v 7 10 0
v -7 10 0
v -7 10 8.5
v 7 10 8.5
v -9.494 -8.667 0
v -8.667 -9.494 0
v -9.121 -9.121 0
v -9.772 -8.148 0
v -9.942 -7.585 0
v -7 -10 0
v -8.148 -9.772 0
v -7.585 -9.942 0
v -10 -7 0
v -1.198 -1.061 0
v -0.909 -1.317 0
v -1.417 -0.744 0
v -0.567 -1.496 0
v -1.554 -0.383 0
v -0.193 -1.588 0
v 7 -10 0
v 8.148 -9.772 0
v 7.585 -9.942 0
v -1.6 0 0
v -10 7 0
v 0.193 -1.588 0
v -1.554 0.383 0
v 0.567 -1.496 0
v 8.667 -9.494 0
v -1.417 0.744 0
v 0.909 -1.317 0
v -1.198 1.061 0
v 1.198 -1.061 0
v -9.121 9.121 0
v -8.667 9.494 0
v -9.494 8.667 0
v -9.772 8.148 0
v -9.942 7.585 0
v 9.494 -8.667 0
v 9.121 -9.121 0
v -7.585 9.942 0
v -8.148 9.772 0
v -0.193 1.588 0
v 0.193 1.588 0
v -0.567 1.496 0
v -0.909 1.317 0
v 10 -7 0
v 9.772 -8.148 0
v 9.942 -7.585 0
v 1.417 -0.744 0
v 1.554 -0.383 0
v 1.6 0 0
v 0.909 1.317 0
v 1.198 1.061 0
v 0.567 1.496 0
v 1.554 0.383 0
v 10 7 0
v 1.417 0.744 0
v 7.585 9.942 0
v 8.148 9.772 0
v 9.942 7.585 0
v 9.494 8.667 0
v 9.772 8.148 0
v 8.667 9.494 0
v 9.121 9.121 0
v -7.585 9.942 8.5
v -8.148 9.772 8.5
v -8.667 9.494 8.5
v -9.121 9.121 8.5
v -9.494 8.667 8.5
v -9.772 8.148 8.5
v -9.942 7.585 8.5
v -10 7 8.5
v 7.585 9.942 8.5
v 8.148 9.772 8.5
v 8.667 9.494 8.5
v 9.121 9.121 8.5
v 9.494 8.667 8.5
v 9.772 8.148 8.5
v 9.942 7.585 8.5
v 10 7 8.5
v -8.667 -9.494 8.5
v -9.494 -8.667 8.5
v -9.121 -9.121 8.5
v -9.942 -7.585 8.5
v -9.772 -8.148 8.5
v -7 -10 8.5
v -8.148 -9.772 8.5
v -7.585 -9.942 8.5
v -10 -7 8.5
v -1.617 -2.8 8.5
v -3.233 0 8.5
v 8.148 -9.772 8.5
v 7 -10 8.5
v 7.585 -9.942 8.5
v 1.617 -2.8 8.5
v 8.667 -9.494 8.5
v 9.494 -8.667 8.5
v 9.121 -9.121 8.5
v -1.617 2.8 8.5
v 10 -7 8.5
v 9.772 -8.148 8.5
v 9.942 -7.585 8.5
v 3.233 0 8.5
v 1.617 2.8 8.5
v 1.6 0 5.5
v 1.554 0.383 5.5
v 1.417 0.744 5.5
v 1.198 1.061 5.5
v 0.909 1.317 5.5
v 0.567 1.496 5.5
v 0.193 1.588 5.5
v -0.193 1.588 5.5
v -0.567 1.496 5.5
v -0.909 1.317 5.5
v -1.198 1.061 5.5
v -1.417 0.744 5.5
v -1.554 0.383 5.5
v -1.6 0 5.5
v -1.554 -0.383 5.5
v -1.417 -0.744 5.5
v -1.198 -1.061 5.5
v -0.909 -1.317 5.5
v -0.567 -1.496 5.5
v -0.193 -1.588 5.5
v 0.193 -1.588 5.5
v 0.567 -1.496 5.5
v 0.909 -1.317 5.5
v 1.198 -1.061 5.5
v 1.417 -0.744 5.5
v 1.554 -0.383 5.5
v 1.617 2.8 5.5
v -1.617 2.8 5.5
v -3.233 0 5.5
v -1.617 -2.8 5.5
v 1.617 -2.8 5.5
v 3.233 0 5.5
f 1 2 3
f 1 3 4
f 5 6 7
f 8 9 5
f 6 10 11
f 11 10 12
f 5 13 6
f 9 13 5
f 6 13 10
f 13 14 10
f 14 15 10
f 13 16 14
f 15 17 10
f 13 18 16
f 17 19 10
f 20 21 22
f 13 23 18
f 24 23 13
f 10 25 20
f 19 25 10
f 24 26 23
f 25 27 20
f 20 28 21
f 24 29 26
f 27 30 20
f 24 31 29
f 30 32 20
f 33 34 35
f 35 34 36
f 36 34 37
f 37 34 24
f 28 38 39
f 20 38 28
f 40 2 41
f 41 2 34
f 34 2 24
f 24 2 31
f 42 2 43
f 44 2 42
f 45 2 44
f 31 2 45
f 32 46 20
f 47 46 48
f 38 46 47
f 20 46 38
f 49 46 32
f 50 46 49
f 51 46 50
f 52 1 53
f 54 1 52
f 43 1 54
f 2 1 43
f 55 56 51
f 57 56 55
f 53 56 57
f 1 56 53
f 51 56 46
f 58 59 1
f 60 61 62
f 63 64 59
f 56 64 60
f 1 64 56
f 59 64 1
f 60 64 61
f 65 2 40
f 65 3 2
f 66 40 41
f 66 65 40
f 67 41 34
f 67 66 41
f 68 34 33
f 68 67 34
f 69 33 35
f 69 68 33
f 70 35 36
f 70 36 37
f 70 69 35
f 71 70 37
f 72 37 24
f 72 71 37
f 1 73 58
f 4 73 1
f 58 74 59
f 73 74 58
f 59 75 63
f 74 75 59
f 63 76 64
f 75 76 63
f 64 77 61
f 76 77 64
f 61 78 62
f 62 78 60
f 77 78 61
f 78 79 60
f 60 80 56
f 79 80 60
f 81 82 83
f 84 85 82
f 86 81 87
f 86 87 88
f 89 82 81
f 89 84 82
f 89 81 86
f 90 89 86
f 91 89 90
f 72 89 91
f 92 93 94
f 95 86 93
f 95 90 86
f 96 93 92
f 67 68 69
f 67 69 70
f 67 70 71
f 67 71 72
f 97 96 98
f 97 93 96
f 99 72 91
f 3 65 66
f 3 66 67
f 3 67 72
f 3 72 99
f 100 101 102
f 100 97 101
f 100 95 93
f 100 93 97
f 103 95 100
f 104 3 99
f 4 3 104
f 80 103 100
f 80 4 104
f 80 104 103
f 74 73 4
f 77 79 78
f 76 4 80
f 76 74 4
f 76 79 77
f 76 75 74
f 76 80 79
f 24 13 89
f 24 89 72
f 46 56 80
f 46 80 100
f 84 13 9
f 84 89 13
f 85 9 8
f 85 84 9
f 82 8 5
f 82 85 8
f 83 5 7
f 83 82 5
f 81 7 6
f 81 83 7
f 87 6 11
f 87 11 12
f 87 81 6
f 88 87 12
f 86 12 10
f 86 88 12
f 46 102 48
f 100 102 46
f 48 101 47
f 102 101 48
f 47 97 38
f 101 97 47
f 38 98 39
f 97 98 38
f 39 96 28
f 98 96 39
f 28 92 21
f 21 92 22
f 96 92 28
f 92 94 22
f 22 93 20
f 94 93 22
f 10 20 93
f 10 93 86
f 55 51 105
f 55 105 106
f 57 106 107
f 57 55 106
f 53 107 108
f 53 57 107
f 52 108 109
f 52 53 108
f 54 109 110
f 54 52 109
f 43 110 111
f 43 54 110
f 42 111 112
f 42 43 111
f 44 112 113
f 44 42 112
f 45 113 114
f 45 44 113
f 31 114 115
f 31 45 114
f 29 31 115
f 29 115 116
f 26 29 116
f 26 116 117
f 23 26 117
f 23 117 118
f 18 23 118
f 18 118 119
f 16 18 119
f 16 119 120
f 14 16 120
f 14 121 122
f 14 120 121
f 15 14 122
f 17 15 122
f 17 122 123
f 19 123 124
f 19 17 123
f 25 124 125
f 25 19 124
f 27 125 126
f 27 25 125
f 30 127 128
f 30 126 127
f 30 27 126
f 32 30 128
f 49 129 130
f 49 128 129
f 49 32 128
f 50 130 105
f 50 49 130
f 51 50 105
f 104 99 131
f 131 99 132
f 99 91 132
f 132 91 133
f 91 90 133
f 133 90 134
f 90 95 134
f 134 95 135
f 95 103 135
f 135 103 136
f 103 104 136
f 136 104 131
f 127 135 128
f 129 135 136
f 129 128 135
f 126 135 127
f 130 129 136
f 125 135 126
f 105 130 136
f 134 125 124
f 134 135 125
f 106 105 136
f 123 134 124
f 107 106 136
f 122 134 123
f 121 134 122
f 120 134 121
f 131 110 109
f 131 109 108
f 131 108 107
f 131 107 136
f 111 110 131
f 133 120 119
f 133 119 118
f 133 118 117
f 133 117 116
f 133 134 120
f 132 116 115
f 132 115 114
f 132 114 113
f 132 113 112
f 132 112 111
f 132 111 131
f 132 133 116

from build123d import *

# Parameters (mm, degrees)
SKETCH_W     = 20
SKETCH_H     = 20
SKETCH_R     = 1.6
PAD_DEPTH    = 8.5
POCKET_DEPTH = 3
FILLET_R     = 3


with BuildPart() as part:
    # Sketch → Pad (new body)
    with BuildSketch(Plane.XY):
        Rectangle(SKETCH_W, SKETCH_H)
        Circle(SKETCH_R, mode=Mode.SUBTRACT)
    extrude(amount=PAD_DEPTH)

    # Sketch001 (on Face7 of Pad) → Pocket (cut)
    with BuildSketch(Plane.XY.offset(8.5)):
        Polygon((1.616581, 2.8), (-1.616581, 2.8), (-3.233162, 0), (-1.616581, -2.8), (1.616581, -2.8), (3.233162, 0), align=None)
    extrude(amount=-POCKET_DEPTH, mode=Mode.SUBTRACT)

    # Fillet
    fillet_edges = [part.edges().sort_by_distance(p)[0] for p in [
        (10, -10, 4.25),
        (-10, -10, 4.25),
        (-10, 10, 4.25),
        (10, 10, 4.25),
    ]]
    fillet(fillet_edges, radius=FILLET_R)


solid = part.part
